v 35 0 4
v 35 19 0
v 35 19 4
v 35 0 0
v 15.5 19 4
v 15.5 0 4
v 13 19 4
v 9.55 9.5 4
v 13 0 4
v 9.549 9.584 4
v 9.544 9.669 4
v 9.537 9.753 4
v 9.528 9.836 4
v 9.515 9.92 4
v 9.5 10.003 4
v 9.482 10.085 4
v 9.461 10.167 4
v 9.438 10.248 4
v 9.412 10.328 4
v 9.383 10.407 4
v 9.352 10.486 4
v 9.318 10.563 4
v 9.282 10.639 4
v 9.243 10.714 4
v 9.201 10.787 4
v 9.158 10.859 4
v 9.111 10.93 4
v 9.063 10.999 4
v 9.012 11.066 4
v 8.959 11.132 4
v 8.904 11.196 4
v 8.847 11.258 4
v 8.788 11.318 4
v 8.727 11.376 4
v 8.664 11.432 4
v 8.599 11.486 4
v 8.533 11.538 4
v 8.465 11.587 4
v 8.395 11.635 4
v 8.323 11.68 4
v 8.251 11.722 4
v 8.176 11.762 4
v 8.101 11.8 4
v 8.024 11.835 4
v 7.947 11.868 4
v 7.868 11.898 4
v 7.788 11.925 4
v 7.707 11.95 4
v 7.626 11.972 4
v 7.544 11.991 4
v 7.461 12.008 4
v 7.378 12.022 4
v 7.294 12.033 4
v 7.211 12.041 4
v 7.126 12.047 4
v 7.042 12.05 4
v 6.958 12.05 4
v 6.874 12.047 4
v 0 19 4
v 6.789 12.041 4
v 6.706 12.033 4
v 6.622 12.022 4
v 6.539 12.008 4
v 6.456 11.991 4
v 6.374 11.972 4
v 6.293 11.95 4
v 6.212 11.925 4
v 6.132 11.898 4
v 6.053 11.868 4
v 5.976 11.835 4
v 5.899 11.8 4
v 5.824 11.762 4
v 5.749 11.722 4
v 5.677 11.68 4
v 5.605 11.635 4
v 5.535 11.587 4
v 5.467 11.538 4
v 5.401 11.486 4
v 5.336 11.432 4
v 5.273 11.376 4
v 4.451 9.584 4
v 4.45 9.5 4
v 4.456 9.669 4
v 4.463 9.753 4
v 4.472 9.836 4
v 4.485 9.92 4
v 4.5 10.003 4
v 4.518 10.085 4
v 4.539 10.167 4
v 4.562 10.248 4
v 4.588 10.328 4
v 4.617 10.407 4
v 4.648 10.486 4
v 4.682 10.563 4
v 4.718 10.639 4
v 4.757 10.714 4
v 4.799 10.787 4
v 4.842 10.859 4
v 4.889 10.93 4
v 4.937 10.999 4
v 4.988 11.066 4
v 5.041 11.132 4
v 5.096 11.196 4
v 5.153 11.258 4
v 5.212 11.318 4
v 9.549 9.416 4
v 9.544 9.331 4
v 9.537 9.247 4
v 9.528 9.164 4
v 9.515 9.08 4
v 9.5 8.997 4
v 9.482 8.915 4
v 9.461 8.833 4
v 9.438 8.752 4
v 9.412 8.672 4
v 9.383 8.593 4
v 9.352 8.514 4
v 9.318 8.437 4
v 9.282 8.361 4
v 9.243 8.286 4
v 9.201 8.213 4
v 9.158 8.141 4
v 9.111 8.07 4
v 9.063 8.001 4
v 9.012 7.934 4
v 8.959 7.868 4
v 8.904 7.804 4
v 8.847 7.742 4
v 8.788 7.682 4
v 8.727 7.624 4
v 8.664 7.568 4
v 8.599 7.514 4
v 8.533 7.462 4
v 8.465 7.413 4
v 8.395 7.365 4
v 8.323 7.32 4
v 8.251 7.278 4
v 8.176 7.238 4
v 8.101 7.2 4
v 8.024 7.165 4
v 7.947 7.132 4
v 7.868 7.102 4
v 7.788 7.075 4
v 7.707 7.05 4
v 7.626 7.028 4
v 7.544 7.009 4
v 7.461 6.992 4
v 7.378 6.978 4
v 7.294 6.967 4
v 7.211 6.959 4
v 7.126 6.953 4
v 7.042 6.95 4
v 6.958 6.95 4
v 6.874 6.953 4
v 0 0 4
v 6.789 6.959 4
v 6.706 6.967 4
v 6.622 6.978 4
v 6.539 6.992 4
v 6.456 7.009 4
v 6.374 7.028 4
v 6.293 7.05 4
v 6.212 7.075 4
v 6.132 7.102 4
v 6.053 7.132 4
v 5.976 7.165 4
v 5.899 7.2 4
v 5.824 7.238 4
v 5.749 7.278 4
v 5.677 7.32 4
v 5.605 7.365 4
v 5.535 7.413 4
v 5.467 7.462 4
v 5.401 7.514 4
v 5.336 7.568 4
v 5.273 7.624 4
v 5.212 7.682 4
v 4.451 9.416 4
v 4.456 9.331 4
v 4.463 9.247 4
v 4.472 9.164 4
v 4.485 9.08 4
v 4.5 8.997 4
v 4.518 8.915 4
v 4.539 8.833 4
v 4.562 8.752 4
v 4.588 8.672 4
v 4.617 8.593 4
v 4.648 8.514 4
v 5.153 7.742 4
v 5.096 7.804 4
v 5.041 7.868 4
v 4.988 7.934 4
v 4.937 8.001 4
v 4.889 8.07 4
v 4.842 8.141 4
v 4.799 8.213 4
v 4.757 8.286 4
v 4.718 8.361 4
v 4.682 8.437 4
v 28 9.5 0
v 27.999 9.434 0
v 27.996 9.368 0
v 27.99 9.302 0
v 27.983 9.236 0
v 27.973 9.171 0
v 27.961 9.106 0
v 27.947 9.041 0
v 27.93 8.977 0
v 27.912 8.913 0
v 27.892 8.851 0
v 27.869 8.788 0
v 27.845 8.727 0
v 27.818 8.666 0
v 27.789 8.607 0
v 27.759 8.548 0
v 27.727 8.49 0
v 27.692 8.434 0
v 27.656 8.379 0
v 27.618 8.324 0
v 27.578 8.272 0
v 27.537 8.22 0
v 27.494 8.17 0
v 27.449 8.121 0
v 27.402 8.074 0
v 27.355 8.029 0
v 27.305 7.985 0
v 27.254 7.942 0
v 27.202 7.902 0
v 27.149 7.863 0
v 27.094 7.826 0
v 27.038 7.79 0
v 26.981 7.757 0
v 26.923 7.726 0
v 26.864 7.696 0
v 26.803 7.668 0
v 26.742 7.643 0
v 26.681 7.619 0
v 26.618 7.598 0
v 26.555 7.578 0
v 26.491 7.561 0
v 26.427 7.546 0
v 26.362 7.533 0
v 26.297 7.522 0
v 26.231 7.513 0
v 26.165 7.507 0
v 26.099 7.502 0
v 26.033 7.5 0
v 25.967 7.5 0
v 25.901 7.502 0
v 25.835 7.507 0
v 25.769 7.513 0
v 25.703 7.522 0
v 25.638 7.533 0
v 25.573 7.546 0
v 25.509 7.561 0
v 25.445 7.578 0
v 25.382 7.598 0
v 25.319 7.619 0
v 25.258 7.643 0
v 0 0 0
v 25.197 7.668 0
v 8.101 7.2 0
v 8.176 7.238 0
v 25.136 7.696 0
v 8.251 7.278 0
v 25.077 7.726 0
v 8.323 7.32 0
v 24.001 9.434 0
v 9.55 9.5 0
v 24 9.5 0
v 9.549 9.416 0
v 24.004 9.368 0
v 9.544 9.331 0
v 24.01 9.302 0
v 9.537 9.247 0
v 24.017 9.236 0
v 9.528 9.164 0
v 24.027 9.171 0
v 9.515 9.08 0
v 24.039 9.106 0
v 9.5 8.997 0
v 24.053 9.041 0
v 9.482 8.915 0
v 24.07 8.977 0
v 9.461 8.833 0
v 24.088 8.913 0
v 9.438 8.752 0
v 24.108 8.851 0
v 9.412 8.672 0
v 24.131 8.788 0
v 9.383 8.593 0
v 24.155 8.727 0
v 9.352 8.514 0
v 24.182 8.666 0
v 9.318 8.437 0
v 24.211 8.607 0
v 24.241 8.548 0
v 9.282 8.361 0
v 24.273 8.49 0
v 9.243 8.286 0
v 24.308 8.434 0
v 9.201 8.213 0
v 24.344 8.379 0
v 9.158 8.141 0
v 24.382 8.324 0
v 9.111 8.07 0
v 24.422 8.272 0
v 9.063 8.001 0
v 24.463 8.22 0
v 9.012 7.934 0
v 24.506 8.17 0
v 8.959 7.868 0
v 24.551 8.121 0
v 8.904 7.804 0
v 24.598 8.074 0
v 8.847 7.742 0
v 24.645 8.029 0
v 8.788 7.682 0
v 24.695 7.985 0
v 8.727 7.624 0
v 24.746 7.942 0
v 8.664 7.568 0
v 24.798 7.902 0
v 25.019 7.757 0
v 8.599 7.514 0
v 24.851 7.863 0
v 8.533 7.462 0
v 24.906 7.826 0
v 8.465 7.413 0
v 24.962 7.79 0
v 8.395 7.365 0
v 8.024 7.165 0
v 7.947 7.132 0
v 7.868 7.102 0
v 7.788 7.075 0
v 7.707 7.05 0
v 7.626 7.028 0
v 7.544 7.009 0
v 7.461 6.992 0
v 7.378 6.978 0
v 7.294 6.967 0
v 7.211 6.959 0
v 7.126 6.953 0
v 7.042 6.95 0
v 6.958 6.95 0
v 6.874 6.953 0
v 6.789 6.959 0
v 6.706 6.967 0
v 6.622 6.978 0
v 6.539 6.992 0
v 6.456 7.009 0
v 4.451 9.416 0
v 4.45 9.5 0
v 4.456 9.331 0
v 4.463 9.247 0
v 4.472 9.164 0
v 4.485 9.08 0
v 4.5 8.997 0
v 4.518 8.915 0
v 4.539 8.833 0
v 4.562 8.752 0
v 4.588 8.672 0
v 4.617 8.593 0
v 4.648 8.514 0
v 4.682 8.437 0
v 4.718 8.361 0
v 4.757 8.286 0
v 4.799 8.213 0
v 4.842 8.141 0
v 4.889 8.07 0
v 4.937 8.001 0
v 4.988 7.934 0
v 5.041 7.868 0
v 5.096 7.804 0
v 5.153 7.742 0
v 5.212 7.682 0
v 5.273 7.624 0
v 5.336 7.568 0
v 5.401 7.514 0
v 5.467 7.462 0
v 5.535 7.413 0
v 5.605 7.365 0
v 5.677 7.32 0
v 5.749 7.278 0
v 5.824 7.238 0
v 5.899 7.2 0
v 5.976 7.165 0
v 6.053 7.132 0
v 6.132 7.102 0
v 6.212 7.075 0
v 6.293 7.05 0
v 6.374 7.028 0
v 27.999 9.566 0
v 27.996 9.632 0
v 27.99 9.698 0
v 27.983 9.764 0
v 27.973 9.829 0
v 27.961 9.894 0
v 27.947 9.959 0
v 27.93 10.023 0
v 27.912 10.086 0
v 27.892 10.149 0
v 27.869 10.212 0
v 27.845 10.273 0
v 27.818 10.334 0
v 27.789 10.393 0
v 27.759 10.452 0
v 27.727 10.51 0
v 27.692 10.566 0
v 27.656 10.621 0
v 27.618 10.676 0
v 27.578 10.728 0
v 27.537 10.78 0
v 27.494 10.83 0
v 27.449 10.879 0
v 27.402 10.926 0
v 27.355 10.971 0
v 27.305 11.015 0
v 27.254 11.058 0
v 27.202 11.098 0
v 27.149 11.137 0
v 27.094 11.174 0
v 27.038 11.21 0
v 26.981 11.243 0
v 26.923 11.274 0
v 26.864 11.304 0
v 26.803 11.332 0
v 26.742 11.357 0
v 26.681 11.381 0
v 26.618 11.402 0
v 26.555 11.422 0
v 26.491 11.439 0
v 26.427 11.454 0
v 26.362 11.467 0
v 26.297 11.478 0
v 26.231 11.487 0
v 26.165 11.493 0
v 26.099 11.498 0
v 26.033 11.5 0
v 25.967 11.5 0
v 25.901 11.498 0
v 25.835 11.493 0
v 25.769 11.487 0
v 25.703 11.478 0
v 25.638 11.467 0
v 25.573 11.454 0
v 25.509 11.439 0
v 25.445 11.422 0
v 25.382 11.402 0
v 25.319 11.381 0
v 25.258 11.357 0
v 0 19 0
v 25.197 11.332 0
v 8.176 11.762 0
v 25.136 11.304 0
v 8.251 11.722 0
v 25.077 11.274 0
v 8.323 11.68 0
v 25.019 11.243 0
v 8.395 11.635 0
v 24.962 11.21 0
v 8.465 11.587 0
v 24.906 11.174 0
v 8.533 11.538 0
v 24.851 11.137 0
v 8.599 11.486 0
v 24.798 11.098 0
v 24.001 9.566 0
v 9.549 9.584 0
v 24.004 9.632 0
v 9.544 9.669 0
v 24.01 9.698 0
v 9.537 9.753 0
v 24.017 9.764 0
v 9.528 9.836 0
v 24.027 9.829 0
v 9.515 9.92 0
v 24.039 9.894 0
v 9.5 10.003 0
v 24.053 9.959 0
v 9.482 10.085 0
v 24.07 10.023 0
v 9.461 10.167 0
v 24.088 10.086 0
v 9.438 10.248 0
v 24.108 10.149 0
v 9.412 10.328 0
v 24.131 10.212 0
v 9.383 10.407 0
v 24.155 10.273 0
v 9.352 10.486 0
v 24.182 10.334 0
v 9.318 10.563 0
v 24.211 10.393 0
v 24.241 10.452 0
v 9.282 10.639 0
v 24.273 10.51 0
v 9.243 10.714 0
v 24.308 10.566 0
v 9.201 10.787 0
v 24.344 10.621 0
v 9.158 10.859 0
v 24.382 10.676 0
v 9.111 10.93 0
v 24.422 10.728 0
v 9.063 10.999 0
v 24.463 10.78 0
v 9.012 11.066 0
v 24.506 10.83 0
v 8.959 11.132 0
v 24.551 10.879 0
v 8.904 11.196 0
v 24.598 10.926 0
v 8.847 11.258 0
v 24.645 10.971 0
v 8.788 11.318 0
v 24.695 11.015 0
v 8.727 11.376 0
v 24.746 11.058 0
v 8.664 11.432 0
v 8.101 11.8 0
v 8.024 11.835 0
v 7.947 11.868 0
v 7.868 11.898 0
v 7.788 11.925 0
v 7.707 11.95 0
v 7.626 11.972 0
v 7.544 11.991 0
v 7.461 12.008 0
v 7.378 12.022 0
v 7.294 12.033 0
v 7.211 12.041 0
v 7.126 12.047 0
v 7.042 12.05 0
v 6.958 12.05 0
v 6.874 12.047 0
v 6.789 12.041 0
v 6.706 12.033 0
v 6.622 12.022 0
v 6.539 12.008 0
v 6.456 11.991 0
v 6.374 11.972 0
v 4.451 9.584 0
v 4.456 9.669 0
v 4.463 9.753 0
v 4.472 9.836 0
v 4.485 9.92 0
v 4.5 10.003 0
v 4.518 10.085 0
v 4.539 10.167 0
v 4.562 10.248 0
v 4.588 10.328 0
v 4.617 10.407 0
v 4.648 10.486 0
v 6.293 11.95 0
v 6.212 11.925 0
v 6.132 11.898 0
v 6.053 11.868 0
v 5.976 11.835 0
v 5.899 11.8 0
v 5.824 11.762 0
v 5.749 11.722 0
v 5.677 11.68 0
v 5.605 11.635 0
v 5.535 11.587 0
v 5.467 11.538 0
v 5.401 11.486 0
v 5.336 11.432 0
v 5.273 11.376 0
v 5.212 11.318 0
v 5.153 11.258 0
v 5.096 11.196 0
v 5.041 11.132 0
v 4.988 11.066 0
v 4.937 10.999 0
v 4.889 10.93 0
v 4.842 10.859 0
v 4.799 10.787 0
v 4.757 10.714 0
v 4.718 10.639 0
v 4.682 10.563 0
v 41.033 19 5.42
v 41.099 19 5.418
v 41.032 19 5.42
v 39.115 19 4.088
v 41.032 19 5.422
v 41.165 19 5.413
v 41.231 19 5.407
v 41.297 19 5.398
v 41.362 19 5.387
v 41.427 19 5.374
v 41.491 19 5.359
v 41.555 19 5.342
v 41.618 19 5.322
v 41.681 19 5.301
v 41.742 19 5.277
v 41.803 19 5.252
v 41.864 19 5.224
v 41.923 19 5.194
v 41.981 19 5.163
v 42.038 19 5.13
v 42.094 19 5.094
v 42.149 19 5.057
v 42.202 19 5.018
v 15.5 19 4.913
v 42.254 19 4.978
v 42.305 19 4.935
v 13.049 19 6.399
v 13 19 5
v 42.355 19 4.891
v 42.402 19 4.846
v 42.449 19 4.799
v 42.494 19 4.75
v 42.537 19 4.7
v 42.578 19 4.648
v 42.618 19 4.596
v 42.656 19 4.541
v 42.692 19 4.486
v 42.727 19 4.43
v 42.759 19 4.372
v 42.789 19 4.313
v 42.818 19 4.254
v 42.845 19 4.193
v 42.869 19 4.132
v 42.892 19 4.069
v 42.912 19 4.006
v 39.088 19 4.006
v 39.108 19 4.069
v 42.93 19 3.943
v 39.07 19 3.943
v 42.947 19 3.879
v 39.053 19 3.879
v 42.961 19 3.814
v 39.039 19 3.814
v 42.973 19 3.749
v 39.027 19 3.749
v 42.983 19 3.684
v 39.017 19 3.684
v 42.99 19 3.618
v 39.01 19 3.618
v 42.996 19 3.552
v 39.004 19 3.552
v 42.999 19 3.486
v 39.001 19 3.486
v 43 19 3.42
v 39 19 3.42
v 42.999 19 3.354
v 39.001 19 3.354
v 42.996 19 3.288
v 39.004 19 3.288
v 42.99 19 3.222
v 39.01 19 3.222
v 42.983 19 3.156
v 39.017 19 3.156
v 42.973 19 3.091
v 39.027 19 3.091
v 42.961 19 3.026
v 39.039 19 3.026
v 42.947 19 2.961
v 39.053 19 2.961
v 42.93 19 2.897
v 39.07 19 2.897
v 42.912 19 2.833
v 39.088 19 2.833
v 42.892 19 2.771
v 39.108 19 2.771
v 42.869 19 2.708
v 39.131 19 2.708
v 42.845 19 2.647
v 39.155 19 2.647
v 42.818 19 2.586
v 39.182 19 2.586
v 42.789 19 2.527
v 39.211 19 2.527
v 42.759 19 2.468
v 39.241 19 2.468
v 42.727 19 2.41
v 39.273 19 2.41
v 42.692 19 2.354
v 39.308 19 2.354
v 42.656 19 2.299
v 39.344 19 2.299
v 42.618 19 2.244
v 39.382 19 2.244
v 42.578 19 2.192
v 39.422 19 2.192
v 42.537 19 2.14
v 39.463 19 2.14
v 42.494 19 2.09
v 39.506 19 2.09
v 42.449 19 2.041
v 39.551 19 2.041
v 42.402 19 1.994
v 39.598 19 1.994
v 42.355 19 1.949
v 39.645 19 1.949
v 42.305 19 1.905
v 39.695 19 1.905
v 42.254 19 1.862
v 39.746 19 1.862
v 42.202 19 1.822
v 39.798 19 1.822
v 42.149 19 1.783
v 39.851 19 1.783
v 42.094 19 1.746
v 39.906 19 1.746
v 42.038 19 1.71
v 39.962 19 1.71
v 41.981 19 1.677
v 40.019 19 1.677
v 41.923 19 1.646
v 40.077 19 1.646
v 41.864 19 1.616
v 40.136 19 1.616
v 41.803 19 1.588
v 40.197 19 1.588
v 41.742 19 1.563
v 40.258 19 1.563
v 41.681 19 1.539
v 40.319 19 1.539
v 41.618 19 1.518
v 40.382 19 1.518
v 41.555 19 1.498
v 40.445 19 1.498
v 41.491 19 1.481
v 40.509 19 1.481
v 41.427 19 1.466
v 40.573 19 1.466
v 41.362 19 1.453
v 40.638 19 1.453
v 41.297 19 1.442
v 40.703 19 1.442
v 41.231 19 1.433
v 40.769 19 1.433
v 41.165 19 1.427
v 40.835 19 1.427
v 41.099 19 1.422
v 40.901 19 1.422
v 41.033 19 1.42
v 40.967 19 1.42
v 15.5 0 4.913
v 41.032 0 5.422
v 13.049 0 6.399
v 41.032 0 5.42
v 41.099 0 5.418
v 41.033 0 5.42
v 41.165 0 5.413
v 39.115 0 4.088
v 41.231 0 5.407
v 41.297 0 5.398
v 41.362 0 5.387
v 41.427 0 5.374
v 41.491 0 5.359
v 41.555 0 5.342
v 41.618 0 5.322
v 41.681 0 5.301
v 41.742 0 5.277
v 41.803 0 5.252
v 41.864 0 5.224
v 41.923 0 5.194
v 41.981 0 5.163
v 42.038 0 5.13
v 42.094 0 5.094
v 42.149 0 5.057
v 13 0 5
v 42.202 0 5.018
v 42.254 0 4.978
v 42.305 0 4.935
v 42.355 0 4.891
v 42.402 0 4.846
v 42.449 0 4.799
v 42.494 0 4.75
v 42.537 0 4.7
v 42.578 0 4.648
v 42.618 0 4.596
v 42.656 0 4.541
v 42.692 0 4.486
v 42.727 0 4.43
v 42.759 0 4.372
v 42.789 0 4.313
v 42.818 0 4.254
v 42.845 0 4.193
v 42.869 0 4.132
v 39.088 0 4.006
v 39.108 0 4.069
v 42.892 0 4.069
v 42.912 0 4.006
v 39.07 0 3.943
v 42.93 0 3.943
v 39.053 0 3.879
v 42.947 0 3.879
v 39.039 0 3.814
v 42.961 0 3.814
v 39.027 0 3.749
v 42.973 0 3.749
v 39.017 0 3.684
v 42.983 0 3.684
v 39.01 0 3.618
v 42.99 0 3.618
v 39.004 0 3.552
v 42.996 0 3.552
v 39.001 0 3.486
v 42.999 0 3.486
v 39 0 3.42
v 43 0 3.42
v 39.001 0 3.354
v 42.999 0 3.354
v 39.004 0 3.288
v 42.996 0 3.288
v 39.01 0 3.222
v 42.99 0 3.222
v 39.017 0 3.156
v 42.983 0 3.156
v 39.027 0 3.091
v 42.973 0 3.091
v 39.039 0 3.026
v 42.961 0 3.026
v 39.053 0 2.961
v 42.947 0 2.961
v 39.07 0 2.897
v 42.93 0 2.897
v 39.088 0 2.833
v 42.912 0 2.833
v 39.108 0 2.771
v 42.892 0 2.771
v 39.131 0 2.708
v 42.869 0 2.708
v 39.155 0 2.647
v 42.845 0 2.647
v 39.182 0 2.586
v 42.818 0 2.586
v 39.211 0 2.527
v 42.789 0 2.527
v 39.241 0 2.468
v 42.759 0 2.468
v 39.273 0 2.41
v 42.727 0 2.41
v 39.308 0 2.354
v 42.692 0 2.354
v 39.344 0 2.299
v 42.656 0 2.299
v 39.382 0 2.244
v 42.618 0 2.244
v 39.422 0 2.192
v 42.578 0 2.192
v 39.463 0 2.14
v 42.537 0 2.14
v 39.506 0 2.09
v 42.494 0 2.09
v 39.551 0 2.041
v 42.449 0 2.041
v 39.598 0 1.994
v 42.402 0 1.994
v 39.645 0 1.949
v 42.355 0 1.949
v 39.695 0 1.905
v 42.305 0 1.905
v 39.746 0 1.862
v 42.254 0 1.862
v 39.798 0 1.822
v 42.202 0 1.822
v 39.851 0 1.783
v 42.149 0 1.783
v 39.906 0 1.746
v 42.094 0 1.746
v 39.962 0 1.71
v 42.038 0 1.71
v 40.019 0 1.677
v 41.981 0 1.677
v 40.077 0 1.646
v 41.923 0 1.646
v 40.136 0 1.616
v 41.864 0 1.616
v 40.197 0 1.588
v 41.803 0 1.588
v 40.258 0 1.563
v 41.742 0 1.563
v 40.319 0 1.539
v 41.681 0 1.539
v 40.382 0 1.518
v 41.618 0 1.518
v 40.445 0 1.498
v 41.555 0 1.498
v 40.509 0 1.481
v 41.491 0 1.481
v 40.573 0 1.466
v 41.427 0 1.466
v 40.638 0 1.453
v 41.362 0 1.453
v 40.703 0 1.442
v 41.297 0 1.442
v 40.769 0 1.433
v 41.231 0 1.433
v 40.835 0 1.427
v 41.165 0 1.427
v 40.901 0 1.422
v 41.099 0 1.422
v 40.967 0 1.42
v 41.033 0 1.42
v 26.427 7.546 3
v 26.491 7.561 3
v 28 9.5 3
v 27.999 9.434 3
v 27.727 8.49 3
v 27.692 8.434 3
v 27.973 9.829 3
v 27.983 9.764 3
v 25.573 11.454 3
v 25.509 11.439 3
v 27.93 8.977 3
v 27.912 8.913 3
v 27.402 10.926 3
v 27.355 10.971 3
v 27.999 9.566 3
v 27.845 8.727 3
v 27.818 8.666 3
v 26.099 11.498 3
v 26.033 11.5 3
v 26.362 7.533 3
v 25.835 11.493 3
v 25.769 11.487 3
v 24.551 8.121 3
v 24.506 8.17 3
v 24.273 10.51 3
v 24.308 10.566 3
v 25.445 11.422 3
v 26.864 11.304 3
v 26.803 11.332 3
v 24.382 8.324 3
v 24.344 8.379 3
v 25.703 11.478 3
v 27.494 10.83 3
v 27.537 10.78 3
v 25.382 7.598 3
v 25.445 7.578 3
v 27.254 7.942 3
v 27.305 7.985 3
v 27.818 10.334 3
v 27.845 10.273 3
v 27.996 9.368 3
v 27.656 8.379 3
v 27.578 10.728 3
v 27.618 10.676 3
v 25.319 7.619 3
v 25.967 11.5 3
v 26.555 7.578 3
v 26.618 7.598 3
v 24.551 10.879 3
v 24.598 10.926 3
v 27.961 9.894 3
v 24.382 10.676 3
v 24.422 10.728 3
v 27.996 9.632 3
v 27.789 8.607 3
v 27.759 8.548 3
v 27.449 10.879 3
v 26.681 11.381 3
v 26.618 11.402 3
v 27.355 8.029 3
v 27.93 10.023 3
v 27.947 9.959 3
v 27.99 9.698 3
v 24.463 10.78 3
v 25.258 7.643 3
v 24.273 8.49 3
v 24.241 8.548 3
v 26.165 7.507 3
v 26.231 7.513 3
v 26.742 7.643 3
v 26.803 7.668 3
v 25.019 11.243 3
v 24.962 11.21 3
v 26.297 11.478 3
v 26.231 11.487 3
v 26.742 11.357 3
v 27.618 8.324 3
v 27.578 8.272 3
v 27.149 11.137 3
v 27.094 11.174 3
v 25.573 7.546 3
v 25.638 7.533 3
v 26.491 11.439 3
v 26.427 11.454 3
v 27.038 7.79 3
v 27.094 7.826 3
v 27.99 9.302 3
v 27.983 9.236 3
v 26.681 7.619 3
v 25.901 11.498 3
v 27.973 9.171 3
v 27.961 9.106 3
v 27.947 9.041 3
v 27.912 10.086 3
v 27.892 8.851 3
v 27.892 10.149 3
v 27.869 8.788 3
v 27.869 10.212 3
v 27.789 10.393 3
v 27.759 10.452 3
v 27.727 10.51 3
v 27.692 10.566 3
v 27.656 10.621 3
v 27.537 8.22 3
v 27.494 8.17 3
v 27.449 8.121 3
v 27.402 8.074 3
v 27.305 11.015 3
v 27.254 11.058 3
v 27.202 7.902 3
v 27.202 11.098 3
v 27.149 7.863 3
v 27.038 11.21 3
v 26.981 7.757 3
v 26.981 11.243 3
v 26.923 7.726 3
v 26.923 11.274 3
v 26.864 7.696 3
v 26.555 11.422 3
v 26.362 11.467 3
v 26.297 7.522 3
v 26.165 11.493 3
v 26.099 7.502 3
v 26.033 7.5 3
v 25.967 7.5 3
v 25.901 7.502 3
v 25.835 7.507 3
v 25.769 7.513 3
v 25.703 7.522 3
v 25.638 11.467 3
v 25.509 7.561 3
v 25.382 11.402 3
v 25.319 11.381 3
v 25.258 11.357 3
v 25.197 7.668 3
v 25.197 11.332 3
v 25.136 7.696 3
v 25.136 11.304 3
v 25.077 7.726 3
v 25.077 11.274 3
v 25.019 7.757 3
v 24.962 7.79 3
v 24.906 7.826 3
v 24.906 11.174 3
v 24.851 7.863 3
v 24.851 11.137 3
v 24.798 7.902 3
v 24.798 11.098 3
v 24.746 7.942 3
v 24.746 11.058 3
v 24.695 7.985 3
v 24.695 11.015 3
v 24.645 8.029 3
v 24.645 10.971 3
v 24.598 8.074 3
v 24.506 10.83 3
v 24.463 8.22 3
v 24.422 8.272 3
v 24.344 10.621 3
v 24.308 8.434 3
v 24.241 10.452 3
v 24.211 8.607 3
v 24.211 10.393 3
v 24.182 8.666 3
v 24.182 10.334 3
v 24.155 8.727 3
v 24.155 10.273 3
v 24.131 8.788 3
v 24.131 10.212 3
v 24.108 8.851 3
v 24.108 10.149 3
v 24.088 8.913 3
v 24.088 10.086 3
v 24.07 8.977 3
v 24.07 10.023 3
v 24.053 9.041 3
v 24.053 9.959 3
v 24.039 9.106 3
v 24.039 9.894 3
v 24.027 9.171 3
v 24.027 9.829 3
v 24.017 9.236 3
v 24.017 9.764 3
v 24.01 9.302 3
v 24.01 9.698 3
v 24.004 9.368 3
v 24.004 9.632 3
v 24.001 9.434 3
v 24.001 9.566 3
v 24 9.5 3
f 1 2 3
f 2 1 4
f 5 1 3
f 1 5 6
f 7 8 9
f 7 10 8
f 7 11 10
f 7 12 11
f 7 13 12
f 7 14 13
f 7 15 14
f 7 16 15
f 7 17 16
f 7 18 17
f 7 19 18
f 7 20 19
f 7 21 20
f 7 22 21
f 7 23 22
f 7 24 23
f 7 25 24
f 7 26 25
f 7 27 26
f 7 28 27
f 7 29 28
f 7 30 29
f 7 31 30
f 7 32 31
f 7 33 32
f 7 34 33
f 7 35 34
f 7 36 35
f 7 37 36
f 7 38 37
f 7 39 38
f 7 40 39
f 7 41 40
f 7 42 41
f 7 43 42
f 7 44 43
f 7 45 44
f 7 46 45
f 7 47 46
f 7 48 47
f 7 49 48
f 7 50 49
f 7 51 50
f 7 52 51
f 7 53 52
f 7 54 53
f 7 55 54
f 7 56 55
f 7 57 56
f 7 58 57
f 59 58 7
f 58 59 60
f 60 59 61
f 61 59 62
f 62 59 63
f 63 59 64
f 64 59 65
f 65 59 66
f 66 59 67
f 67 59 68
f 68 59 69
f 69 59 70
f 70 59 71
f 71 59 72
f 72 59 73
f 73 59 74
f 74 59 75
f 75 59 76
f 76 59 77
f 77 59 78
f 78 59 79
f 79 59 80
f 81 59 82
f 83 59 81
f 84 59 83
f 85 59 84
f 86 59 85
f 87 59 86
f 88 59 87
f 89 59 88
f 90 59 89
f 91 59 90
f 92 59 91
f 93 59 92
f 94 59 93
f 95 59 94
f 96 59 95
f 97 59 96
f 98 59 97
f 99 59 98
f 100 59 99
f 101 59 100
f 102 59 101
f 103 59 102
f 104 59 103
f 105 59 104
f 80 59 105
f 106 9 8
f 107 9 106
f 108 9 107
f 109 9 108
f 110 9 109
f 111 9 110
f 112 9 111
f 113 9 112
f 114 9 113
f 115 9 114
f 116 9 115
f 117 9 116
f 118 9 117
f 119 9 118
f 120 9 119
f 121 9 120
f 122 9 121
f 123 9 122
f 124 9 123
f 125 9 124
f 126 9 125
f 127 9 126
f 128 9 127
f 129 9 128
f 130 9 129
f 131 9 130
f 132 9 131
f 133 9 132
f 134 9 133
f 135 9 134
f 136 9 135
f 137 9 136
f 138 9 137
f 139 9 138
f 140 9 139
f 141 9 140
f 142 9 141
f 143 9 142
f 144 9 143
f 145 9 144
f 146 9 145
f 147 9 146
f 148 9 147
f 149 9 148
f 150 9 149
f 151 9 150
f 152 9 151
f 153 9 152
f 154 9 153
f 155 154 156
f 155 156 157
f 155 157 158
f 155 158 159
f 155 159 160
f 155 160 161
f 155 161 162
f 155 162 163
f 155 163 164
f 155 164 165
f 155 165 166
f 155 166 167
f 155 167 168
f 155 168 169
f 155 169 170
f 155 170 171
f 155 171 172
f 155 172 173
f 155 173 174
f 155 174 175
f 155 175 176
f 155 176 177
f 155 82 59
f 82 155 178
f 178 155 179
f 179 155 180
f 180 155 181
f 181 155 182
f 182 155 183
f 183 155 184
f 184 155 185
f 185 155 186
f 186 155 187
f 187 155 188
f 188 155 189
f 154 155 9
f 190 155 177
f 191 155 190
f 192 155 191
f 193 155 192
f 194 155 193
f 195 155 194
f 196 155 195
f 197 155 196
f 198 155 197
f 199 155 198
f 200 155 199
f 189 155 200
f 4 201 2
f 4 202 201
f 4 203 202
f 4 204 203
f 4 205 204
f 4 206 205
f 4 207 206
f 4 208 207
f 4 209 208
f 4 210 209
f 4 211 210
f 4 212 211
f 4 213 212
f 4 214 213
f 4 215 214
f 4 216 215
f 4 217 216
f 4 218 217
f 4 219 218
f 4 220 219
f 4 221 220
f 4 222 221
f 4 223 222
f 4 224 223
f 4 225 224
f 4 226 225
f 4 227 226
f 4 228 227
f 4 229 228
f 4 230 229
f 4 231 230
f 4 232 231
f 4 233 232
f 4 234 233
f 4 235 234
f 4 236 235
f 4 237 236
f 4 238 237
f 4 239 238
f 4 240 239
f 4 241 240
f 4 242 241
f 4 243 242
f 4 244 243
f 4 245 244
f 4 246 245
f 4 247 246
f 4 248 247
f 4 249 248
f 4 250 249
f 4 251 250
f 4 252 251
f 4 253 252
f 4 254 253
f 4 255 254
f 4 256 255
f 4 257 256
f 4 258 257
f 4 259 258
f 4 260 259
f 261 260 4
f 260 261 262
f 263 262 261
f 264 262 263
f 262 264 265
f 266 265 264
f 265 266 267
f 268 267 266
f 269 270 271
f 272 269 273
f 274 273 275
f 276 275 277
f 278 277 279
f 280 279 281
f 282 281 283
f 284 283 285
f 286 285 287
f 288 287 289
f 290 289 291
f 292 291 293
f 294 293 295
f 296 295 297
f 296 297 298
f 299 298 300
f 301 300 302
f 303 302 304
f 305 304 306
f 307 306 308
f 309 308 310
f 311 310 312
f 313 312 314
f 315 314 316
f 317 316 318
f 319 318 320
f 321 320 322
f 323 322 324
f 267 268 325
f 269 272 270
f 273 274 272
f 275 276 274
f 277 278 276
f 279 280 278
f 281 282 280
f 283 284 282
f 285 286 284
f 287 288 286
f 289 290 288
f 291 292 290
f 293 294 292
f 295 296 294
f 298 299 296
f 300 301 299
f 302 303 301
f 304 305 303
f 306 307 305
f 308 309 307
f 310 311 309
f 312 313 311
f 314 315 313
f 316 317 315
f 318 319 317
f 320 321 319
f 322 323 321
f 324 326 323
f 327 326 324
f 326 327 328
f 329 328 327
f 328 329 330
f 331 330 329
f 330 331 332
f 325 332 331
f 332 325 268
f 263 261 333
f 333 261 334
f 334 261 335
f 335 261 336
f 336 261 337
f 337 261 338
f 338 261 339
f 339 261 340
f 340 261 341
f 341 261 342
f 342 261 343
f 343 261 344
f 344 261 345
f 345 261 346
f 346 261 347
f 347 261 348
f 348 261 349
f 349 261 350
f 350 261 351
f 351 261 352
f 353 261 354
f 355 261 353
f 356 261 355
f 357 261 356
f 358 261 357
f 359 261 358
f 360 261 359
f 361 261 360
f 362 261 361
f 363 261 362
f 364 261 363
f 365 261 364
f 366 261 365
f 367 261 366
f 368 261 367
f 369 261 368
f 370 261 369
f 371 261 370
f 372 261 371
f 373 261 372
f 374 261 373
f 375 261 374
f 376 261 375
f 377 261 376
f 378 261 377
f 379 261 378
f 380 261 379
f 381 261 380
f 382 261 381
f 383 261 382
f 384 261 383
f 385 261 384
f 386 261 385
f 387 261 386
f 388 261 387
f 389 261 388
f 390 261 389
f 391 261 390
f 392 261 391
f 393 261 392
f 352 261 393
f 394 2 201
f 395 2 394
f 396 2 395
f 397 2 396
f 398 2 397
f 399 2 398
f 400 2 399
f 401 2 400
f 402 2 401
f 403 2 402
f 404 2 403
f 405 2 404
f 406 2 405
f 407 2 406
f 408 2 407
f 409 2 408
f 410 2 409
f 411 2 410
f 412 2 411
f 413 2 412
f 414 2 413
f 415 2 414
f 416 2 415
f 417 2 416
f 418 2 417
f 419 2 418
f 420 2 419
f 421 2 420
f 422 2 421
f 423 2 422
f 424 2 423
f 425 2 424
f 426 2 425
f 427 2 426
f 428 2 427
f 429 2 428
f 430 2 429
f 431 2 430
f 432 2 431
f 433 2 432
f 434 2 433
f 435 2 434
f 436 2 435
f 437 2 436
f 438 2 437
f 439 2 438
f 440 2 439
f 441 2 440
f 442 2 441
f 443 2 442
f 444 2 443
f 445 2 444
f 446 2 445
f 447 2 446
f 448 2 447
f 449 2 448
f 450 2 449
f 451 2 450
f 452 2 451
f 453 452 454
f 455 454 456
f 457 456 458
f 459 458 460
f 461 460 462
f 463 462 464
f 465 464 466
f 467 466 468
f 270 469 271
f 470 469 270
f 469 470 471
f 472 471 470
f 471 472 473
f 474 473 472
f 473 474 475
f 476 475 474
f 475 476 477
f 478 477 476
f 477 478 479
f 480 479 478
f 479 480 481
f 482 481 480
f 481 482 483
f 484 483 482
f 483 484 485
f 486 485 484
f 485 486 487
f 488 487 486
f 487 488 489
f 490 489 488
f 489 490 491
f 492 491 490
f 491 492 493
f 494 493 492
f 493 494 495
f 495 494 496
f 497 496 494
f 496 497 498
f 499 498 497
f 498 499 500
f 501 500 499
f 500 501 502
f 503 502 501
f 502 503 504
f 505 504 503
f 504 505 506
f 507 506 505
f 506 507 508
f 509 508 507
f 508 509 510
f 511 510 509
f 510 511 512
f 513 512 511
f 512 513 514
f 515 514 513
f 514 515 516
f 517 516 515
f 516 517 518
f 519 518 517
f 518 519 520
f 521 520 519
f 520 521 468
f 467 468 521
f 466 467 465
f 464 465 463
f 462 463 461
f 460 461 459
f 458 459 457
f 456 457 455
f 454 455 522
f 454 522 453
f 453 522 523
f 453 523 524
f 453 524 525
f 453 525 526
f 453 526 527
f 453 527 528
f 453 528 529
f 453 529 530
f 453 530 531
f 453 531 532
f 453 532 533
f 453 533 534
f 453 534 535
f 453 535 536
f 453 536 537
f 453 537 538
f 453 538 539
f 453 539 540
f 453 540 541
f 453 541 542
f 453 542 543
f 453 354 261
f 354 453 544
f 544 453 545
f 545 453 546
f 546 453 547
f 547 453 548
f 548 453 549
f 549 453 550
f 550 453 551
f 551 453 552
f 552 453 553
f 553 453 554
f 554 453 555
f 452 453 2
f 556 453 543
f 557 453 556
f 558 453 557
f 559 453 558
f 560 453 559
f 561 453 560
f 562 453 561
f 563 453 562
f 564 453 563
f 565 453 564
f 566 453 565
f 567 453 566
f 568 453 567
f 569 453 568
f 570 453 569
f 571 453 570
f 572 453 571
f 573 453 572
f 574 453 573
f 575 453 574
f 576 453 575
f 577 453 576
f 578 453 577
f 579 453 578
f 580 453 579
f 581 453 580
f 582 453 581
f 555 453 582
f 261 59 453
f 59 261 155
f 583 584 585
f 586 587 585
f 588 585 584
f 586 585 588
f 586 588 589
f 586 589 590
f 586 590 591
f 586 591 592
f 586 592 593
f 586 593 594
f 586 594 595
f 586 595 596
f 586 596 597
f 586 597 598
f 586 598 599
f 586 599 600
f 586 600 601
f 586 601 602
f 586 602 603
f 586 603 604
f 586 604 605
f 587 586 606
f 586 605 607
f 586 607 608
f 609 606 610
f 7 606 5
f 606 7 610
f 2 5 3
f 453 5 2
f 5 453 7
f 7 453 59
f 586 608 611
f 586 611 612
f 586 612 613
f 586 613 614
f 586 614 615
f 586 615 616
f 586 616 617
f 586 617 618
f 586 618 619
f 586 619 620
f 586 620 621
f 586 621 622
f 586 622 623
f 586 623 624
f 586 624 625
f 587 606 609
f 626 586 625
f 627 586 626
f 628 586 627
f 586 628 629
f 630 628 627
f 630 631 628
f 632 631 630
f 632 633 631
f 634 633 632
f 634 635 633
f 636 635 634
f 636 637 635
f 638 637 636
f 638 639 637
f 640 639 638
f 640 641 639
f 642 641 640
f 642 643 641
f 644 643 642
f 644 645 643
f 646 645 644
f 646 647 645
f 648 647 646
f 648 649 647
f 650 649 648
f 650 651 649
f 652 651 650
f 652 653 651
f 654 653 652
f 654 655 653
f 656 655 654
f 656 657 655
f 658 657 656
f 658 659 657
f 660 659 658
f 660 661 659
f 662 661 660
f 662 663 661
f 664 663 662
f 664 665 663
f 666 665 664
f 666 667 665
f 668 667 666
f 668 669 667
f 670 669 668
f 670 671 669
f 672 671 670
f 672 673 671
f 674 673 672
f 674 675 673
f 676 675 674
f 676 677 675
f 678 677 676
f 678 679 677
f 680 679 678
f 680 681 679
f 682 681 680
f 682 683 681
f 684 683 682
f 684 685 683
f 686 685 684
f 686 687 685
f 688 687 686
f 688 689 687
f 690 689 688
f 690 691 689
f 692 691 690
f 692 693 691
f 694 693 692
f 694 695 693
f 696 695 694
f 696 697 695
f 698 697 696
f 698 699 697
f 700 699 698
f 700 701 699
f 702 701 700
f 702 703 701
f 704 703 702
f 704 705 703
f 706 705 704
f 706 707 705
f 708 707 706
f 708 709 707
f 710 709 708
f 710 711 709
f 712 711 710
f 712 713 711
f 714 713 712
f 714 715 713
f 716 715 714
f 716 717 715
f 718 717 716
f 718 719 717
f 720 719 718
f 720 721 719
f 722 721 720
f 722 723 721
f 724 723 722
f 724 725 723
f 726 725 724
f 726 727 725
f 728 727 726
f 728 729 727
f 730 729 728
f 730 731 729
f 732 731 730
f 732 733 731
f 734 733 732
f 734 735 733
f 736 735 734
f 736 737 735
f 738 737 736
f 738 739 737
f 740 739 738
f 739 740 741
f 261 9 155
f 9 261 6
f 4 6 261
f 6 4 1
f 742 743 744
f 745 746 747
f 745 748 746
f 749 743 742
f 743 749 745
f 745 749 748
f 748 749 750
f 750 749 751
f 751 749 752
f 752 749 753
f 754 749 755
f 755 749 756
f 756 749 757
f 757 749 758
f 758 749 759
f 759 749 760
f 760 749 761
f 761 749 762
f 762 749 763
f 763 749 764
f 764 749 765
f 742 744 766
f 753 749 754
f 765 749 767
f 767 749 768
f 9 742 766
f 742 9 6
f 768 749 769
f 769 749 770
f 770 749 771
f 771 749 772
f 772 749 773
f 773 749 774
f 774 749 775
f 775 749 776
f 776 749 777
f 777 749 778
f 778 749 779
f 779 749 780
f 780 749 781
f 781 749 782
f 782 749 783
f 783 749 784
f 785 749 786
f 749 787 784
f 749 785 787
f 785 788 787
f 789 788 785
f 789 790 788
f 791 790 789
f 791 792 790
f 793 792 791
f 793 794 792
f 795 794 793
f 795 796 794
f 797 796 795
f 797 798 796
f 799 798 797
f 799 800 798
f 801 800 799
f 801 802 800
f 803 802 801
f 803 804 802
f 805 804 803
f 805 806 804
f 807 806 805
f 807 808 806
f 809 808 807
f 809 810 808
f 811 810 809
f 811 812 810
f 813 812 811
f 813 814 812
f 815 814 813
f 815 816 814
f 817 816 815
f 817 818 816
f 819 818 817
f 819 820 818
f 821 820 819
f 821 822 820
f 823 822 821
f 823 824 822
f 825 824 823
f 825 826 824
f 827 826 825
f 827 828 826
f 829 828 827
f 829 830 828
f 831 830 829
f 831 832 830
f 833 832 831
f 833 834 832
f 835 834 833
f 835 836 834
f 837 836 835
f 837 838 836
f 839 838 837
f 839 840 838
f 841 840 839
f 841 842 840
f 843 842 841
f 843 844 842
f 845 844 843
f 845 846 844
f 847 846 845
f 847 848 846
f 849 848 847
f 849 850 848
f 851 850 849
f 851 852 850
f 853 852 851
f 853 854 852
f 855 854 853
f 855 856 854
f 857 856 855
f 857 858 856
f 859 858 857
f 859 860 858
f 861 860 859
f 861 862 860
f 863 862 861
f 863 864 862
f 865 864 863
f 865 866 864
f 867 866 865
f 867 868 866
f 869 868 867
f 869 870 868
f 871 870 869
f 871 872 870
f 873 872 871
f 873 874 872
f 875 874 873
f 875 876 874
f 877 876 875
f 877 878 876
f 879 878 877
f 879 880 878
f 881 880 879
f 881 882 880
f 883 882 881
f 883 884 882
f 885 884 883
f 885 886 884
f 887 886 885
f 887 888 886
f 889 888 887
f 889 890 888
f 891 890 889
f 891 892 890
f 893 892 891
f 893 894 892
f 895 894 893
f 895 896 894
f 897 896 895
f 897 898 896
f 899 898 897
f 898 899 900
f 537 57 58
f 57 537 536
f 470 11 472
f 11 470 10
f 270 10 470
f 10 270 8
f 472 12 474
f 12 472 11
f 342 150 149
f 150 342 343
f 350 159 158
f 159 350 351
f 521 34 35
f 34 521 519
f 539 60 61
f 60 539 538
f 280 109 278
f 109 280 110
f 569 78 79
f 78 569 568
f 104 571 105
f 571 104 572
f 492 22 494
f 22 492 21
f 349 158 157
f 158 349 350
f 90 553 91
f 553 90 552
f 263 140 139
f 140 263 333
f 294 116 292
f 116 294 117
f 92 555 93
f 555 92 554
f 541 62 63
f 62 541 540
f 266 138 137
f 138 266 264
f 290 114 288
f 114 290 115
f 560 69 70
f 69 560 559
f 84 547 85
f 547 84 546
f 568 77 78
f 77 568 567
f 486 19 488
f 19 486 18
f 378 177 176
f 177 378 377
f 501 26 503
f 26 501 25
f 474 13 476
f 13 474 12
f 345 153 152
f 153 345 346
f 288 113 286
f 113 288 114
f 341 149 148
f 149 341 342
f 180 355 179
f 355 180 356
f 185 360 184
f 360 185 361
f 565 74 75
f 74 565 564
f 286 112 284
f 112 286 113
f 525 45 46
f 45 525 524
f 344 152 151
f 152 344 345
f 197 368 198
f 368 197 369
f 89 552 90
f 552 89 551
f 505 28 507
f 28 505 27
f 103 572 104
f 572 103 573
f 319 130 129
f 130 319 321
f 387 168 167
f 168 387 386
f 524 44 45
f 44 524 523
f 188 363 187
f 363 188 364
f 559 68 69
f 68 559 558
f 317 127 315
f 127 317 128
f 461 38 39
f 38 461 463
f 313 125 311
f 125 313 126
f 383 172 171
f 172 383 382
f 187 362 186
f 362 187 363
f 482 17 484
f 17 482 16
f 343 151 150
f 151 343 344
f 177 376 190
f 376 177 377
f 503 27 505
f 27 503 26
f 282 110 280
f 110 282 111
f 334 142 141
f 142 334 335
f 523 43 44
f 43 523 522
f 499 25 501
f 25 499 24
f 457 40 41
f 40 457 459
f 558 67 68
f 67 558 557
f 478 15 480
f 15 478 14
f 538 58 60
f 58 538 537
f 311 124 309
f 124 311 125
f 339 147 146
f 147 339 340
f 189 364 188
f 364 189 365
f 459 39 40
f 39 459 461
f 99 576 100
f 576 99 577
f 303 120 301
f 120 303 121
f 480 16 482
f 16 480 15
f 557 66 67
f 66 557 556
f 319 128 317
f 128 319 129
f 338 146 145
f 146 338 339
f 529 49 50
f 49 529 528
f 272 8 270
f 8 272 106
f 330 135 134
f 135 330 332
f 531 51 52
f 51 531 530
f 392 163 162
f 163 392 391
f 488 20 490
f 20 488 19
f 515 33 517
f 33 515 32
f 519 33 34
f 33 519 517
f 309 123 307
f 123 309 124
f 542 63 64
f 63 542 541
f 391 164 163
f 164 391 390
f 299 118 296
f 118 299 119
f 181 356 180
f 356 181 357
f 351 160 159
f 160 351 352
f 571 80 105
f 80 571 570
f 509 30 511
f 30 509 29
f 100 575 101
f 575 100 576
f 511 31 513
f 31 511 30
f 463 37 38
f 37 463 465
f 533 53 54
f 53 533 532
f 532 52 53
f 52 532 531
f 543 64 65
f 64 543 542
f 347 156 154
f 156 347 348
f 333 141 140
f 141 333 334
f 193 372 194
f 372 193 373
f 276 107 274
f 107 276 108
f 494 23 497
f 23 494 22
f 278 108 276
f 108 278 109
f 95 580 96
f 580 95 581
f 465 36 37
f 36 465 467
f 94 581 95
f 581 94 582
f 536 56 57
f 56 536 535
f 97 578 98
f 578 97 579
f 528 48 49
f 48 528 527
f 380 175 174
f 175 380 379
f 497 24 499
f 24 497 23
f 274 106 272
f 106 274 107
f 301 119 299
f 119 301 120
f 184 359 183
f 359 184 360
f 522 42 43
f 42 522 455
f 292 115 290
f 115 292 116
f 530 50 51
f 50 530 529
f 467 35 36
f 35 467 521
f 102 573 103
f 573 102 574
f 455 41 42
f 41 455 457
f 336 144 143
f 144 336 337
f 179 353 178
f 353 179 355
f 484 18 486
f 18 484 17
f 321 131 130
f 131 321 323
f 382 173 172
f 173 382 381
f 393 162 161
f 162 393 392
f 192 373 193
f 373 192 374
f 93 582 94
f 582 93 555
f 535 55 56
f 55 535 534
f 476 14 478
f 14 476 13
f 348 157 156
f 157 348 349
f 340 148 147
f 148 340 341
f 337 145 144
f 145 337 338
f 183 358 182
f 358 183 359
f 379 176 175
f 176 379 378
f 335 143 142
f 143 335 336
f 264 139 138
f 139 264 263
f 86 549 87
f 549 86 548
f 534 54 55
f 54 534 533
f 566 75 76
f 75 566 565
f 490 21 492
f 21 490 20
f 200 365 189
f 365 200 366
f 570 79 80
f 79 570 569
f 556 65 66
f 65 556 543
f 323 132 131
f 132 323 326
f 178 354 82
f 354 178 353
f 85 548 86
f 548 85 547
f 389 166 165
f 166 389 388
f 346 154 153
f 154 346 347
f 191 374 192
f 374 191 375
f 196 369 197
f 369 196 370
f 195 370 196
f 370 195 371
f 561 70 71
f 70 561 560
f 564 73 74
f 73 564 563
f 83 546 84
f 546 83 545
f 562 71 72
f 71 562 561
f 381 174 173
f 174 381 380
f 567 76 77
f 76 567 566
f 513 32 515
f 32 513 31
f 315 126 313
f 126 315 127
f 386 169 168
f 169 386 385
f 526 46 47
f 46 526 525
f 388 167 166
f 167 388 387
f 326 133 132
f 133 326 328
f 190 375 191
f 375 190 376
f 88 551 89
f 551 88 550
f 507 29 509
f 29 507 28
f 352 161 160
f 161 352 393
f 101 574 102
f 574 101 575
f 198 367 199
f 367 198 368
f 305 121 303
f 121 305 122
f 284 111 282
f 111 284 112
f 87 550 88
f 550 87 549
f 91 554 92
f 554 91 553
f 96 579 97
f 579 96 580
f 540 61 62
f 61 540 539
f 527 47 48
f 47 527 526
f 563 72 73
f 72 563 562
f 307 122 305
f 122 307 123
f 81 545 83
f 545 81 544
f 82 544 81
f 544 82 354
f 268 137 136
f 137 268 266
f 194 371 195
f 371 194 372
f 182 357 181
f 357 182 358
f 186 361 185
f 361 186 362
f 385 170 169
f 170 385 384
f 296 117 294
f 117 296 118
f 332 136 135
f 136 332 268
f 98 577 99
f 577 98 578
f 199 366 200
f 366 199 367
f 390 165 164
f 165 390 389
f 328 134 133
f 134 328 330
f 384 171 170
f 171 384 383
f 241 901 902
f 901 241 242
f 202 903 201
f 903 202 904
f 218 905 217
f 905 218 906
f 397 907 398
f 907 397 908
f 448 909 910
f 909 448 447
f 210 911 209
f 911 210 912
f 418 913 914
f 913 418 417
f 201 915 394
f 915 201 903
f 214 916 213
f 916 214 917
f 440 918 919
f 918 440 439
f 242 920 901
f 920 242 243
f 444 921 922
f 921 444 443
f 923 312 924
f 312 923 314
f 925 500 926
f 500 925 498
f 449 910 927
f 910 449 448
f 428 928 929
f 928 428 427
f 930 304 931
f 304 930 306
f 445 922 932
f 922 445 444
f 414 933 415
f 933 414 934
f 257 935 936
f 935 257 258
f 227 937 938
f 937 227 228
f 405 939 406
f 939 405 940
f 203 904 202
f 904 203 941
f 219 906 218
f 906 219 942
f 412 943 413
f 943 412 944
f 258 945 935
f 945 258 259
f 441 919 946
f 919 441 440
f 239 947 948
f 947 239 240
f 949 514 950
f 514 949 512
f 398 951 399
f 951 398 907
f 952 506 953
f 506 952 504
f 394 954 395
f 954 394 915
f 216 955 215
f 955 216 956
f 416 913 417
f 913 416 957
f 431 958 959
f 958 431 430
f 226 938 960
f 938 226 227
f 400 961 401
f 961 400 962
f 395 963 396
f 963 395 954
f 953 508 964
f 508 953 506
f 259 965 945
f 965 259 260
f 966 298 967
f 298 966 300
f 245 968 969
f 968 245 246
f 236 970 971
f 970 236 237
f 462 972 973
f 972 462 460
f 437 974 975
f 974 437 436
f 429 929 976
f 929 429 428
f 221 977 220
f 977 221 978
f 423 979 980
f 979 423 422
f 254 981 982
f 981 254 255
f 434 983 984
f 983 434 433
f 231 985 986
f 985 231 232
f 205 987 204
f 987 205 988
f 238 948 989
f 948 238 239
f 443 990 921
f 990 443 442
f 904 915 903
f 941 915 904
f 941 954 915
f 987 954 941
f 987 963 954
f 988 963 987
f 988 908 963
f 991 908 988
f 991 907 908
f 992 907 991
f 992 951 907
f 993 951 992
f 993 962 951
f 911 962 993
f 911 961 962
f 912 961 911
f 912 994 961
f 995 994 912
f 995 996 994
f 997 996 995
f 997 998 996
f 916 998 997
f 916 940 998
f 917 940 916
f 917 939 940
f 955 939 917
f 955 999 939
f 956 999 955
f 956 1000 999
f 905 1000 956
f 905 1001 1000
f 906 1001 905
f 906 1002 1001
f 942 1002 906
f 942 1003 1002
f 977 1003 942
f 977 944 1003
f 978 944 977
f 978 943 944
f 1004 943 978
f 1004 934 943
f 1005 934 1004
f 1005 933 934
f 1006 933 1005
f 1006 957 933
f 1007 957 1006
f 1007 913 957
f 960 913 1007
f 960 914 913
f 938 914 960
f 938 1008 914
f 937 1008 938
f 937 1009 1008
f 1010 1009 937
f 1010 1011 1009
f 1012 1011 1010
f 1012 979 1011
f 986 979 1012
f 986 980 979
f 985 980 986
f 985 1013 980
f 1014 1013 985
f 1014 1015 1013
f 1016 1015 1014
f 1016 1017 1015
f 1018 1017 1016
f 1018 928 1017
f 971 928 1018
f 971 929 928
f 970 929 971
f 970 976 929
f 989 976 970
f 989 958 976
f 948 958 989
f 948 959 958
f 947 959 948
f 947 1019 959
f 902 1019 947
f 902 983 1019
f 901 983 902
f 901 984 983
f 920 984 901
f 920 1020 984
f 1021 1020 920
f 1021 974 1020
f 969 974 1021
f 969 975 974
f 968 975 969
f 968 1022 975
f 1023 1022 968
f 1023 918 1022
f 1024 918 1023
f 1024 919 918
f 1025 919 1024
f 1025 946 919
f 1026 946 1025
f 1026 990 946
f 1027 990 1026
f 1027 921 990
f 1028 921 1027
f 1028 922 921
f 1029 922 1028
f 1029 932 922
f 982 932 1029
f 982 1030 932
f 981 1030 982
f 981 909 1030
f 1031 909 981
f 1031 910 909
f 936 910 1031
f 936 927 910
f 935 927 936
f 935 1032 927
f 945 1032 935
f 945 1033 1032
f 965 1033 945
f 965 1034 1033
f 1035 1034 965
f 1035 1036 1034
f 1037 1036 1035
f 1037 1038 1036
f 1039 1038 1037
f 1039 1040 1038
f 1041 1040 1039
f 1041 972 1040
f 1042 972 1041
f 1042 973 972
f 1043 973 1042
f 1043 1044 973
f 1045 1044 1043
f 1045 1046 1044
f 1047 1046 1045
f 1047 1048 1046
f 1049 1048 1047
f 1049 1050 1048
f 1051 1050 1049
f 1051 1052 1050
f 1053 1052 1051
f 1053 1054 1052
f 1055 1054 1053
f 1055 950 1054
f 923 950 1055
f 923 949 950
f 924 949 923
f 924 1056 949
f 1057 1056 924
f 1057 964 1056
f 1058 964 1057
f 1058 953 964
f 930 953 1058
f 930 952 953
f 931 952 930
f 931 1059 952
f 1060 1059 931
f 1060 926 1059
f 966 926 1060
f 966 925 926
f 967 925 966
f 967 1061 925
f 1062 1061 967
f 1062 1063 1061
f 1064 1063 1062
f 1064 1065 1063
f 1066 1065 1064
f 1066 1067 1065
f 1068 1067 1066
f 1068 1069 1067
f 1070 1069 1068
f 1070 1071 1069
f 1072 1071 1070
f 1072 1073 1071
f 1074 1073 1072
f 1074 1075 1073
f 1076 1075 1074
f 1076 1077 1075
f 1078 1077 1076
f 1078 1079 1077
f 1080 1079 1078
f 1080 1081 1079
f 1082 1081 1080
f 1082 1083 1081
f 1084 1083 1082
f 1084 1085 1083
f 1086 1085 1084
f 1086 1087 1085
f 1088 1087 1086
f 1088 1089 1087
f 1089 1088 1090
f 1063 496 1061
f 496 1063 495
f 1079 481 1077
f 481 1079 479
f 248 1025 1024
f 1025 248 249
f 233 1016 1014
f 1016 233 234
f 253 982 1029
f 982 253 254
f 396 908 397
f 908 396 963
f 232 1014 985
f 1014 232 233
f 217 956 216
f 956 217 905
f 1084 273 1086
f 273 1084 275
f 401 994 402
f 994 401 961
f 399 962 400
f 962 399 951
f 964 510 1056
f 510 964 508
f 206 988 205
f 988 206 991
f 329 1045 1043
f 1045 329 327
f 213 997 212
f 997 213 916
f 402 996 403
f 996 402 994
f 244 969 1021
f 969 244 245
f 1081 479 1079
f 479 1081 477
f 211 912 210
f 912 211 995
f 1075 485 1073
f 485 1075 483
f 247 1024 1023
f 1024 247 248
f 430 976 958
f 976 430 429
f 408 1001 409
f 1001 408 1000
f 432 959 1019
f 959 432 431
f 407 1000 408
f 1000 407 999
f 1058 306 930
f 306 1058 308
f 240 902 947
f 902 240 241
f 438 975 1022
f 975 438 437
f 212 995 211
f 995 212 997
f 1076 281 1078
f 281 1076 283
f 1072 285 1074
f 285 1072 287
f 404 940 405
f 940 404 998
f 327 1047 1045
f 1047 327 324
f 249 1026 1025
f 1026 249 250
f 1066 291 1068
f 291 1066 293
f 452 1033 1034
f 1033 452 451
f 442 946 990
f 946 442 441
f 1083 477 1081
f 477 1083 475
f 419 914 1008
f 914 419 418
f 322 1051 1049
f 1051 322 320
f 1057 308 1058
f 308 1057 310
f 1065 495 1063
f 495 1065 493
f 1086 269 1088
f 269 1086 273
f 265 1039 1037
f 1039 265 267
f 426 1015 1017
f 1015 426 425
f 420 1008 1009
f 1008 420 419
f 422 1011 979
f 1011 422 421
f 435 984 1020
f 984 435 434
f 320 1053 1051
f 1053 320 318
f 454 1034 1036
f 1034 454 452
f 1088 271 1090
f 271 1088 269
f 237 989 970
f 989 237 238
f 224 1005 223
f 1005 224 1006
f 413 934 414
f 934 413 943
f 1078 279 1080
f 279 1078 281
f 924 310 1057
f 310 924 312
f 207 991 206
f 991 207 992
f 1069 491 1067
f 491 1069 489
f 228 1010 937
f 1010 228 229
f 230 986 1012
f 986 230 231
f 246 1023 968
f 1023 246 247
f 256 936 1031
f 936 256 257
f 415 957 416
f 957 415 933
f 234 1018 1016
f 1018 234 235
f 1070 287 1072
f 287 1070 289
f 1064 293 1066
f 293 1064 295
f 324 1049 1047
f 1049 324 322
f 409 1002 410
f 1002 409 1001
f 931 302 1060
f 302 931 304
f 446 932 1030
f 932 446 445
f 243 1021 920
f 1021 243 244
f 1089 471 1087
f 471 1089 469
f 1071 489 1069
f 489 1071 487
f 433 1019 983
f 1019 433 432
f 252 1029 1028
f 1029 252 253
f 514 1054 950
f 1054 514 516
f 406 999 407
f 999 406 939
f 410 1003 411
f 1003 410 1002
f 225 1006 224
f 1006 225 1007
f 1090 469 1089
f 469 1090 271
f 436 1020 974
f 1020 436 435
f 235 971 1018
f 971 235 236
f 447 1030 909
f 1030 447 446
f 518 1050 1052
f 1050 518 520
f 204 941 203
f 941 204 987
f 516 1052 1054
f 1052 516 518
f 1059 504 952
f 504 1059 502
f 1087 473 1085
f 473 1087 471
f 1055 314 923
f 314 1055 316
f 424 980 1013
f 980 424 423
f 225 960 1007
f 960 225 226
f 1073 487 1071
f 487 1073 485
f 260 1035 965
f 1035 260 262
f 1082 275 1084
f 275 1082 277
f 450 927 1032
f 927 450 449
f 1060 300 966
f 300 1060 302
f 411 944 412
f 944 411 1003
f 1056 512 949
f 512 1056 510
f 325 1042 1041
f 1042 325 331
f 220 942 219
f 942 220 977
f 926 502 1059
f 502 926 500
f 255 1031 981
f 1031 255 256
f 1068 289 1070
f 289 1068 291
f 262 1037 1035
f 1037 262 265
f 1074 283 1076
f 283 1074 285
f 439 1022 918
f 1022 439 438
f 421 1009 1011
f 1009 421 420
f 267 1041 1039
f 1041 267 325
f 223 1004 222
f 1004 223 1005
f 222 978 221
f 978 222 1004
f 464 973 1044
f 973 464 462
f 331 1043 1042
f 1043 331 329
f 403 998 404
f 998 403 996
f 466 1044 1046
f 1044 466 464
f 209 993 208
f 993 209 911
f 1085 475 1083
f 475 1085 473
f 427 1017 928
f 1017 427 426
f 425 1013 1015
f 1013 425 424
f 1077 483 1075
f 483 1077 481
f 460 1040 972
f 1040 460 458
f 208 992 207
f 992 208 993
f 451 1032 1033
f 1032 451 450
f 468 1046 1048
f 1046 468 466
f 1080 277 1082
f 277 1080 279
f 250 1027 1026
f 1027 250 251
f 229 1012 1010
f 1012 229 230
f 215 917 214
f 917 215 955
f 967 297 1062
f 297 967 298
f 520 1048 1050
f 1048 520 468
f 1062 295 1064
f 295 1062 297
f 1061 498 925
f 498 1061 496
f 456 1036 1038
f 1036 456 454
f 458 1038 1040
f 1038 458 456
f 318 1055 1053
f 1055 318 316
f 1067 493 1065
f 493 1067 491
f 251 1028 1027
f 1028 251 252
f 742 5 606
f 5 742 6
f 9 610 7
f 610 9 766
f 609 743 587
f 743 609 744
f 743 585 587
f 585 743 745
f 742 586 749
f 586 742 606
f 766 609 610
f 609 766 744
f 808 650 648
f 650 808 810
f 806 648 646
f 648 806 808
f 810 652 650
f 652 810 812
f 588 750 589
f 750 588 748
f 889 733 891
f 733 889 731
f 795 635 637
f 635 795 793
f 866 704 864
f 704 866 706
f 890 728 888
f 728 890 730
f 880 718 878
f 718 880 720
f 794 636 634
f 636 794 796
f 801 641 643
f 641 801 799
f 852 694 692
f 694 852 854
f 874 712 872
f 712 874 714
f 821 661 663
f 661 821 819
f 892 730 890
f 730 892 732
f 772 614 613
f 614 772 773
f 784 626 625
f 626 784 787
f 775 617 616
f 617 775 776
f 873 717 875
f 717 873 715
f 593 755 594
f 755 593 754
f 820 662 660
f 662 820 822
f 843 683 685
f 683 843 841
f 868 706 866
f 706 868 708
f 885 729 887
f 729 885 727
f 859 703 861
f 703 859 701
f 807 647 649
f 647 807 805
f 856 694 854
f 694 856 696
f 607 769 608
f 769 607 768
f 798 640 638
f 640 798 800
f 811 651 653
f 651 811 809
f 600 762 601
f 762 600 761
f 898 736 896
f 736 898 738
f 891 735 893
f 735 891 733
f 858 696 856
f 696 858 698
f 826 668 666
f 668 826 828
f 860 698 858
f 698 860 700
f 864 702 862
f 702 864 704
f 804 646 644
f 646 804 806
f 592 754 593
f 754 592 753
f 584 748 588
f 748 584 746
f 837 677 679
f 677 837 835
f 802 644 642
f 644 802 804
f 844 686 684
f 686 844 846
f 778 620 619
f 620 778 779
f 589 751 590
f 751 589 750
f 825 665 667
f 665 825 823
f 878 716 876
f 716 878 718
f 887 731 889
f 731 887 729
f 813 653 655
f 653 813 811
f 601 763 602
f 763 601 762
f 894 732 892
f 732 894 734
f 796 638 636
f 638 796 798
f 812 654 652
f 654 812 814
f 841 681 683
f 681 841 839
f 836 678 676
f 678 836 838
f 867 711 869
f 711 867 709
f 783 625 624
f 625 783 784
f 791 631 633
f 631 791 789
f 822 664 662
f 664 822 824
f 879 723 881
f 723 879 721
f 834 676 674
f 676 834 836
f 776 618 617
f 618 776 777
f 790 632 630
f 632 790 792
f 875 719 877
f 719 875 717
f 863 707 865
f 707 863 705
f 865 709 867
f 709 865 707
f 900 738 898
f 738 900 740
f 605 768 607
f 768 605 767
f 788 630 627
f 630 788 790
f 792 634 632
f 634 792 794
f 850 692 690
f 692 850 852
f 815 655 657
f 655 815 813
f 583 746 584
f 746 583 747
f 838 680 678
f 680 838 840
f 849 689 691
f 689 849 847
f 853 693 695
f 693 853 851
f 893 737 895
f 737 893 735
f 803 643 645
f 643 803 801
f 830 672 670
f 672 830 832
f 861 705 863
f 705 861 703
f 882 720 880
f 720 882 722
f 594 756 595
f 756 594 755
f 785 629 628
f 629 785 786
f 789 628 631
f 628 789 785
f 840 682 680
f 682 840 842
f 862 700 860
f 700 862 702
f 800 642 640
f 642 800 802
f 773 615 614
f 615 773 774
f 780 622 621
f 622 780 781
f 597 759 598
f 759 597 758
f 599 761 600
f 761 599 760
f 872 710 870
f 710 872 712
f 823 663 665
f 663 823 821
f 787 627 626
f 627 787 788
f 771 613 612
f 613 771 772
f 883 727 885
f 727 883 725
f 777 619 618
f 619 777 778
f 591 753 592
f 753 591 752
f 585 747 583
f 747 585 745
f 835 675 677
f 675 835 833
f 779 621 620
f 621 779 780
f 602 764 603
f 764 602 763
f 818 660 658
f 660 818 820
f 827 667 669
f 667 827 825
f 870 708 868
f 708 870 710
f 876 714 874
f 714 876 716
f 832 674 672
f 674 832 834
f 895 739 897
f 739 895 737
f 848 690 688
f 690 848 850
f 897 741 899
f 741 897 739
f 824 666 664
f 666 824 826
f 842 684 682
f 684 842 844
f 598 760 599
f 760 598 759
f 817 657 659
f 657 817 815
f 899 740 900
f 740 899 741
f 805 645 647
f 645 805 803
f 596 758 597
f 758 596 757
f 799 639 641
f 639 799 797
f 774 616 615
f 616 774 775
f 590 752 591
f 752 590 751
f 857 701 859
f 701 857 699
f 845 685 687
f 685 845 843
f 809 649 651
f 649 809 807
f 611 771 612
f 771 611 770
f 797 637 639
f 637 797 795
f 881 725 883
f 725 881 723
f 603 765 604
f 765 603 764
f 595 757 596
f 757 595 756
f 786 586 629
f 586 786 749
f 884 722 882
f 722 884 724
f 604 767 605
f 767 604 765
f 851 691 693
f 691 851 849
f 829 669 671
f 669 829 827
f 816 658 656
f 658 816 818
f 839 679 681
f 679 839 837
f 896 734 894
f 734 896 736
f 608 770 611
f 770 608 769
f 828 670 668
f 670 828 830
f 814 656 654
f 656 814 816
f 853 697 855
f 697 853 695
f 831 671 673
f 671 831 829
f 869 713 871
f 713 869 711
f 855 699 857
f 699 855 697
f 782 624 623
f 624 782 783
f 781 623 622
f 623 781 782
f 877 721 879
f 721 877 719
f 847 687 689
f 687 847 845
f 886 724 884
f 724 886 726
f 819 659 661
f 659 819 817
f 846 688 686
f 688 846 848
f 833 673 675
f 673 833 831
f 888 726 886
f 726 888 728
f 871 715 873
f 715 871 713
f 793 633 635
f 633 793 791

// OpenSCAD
$fn=190;

SIZE_HOLE_SCREW = 5.1;
GAP_HOLES = 19;
SIZE_HOLE_DUMMY = 4;


difference() {
    cube([35, 19, 4]);
    translate([7, 19/2, 0]) {
        cylinder(d=SIZE_HOLE_SCREW, h=10);
    }
    translate([7+GAP_HOLES, 19/2, 0]) {
        cylinder(d=SIZE_HOLE_DUMMY, h=3);
    }
}

translate([13, 0, 4]) {
    cube([2.5, 19, 1]);
}
translate([13, 0, 5]) {
    rotate([0, 2, 0]) cube([28, 19, 1.4]);
}

translate([28+13, 0, 3.42]) {
    rotate([270, 0, 0])cylinder(d=4, h=19);
}
